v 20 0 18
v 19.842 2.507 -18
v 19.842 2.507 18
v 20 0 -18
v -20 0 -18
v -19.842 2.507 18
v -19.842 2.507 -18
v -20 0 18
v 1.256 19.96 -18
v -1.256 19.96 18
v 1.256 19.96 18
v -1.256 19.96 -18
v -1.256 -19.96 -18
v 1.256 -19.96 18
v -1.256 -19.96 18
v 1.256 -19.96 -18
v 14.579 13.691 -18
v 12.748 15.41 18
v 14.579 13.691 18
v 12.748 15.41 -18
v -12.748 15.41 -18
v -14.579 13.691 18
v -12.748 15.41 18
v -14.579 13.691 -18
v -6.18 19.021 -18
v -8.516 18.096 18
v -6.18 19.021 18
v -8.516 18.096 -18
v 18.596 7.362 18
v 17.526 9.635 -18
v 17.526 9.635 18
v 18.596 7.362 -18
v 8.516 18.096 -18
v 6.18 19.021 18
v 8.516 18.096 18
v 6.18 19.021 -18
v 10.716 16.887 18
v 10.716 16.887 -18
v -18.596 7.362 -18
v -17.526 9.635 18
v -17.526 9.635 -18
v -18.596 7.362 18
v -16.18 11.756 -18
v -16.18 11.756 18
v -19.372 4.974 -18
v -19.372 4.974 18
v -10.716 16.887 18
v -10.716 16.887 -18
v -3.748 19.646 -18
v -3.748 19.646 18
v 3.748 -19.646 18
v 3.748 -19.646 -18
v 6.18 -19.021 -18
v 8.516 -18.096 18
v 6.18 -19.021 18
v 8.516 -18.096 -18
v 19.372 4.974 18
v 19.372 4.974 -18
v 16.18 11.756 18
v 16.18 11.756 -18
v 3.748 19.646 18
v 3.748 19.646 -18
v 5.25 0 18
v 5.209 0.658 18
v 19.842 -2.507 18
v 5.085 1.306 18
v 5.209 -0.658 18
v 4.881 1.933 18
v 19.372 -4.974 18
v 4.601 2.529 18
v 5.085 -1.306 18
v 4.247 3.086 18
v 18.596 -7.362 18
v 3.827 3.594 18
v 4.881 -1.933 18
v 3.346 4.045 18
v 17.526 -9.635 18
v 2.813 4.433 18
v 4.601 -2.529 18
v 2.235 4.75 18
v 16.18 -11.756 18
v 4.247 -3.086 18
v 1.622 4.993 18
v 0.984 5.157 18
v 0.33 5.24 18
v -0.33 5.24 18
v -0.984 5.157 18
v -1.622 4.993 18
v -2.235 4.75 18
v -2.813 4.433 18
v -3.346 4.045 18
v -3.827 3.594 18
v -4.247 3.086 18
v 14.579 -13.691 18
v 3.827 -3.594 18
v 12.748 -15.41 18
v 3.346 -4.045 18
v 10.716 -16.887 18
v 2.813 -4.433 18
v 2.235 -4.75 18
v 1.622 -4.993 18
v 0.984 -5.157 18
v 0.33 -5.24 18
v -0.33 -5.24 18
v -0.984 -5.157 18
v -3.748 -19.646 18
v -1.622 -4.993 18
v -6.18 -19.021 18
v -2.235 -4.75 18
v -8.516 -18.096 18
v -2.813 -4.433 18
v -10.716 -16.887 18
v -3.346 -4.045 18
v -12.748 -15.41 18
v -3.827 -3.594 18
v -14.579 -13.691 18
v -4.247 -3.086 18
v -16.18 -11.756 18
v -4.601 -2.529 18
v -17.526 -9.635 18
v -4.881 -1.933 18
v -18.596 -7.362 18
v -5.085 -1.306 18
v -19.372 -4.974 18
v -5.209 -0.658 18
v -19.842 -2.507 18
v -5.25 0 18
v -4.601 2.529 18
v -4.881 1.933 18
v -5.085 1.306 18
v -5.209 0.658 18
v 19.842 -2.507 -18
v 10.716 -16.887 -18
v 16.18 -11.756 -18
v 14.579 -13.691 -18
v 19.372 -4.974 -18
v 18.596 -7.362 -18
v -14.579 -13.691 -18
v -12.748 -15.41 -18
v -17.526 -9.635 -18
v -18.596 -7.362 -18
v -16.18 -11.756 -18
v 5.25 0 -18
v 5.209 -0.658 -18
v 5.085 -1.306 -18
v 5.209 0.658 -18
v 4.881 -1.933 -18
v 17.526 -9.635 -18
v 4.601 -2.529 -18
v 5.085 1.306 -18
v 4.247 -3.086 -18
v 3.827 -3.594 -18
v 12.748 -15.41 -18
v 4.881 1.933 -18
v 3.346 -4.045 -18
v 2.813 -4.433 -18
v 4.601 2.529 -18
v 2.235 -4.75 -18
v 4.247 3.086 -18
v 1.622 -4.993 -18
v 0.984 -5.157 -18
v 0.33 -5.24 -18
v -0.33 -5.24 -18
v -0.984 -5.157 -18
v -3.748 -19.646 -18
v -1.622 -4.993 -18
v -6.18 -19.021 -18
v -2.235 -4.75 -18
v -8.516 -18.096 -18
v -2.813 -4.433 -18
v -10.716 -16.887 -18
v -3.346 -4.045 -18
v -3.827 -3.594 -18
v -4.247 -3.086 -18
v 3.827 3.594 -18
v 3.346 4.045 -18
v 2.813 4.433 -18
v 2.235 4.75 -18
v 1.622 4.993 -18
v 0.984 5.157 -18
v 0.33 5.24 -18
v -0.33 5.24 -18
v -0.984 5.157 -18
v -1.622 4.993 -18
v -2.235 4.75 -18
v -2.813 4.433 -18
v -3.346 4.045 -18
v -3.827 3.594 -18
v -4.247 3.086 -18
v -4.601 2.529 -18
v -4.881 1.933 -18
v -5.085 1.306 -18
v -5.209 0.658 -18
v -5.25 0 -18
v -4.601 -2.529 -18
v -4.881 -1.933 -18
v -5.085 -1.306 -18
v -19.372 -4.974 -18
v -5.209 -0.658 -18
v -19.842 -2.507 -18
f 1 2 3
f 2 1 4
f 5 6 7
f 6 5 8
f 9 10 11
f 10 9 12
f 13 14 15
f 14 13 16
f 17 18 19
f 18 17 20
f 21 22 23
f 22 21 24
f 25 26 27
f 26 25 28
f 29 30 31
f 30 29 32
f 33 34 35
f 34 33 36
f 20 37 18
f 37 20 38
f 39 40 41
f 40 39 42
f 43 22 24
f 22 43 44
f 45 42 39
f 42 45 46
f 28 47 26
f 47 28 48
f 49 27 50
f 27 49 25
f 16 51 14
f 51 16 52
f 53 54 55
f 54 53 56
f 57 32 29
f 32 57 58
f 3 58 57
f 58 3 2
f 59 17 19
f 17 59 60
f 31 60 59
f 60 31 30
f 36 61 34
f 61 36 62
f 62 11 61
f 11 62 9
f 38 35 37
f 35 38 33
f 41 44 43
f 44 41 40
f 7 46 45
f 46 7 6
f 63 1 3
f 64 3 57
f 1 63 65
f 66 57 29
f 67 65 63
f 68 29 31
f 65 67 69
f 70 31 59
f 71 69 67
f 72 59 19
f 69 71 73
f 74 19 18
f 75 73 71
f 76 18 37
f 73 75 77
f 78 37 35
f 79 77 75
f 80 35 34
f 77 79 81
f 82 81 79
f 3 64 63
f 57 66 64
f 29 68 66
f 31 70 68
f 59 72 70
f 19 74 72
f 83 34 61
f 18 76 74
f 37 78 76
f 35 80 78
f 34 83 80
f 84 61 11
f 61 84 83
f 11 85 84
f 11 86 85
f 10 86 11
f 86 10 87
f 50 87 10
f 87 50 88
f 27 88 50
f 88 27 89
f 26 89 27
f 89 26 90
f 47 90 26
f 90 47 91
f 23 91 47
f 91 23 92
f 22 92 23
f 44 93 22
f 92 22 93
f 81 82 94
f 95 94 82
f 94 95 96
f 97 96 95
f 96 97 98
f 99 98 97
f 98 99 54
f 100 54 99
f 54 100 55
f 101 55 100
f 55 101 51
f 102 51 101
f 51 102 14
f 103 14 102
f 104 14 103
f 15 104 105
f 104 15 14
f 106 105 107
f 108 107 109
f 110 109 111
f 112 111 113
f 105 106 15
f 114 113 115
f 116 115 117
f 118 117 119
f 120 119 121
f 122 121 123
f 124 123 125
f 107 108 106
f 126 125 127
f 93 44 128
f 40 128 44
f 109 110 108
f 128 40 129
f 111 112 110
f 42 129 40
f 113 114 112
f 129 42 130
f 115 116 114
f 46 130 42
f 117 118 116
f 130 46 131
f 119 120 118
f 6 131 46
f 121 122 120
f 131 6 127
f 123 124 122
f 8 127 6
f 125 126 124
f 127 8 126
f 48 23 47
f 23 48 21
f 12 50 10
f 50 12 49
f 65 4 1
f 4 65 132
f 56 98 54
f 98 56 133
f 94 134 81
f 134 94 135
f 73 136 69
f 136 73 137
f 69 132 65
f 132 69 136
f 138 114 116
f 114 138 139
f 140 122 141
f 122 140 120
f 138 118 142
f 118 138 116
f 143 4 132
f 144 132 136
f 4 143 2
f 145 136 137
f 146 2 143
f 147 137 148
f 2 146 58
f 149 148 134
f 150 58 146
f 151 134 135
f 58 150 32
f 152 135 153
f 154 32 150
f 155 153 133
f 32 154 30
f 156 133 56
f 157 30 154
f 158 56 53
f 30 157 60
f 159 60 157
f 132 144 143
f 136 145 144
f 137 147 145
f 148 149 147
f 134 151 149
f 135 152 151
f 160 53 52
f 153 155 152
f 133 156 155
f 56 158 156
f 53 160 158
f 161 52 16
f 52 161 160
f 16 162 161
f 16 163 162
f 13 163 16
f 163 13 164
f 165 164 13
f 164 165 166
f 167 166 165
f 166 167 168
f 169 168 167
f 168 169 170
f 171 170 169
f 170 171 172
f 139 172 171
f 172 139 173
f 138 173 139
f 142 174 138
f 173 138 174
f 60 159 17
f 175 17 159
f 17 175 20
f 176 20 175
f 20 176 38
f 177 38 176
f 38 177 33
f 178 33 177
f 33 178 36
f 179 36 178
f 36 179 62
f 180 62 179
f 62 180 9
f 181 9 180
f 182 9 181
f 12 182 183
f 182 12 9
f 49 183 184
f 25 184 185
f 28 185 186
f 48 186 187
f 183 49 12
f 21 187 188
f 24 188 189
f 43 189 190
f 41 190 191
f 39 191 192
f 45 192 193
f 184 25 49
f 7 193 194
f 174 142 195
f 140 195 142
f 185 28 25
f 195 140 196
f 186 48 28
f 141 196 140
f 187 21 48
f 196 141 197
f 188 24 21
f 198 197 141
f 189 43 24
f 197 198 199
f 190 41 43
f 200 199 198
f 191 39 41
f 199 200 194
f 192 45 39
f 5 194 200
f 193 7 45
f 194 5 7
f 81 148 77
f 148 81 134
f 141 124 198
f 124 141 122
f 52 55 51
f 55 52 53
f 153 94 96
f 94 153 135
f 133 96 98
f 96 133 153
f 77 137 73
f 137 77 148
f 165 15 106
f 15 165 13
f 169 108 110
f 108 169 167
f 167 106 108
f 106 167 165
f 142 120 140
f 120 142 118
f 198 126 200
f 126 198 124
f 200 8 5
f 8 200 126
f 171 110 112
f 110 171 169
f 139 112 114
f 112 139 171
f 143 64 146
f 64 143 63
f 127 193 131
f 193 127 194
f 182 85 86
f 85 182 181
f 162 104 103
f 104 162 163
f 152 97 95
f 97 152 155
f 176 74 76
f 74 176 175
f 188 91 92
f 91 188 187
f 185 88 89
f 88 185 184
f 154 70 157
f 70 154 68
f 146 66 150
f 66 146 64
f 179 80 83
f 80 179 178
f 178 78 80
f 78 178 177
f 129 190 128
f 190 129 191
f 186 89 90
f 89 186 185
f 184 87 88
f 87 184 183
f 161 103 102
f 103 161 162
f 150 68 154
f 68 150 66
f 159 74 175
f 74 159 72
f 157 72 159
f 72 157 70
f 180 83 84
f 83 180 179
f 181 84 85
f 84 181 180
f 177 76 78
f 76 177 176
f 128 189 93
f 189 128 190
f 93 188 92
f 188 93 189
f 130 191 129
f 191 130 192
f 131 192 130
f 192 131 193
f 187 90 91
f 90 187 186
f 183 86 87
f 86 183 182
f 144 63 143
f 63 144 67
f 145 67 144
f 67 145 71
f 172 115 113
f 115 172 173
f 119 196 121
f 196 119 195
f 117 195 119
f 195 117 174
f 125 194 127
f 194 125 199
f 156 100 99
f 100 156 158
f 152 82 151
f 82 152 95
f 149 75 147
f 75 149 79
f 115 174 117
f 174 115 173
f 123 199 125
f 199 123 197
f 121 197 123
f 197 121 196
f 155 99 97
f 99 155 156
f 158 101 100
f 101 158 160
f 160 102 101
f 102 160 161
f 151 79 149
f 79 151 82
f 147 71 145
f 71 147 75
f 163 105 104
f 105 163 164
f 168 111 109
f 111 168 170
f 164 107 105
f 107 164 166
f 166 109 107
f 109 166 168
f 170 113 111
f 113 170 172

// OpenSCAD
$fn = 50;


difference() {
	union() {
		translate(v = [0, 0, -18.0000000000]) {
			cylinder(h = 36, r = 20.0000000000);
		}
	}
	union() {
		translate(v = [0, 0, -100.0000000000]) {
			cylinder(h = 200, r = 5.2500000000);
		}
	}
}
